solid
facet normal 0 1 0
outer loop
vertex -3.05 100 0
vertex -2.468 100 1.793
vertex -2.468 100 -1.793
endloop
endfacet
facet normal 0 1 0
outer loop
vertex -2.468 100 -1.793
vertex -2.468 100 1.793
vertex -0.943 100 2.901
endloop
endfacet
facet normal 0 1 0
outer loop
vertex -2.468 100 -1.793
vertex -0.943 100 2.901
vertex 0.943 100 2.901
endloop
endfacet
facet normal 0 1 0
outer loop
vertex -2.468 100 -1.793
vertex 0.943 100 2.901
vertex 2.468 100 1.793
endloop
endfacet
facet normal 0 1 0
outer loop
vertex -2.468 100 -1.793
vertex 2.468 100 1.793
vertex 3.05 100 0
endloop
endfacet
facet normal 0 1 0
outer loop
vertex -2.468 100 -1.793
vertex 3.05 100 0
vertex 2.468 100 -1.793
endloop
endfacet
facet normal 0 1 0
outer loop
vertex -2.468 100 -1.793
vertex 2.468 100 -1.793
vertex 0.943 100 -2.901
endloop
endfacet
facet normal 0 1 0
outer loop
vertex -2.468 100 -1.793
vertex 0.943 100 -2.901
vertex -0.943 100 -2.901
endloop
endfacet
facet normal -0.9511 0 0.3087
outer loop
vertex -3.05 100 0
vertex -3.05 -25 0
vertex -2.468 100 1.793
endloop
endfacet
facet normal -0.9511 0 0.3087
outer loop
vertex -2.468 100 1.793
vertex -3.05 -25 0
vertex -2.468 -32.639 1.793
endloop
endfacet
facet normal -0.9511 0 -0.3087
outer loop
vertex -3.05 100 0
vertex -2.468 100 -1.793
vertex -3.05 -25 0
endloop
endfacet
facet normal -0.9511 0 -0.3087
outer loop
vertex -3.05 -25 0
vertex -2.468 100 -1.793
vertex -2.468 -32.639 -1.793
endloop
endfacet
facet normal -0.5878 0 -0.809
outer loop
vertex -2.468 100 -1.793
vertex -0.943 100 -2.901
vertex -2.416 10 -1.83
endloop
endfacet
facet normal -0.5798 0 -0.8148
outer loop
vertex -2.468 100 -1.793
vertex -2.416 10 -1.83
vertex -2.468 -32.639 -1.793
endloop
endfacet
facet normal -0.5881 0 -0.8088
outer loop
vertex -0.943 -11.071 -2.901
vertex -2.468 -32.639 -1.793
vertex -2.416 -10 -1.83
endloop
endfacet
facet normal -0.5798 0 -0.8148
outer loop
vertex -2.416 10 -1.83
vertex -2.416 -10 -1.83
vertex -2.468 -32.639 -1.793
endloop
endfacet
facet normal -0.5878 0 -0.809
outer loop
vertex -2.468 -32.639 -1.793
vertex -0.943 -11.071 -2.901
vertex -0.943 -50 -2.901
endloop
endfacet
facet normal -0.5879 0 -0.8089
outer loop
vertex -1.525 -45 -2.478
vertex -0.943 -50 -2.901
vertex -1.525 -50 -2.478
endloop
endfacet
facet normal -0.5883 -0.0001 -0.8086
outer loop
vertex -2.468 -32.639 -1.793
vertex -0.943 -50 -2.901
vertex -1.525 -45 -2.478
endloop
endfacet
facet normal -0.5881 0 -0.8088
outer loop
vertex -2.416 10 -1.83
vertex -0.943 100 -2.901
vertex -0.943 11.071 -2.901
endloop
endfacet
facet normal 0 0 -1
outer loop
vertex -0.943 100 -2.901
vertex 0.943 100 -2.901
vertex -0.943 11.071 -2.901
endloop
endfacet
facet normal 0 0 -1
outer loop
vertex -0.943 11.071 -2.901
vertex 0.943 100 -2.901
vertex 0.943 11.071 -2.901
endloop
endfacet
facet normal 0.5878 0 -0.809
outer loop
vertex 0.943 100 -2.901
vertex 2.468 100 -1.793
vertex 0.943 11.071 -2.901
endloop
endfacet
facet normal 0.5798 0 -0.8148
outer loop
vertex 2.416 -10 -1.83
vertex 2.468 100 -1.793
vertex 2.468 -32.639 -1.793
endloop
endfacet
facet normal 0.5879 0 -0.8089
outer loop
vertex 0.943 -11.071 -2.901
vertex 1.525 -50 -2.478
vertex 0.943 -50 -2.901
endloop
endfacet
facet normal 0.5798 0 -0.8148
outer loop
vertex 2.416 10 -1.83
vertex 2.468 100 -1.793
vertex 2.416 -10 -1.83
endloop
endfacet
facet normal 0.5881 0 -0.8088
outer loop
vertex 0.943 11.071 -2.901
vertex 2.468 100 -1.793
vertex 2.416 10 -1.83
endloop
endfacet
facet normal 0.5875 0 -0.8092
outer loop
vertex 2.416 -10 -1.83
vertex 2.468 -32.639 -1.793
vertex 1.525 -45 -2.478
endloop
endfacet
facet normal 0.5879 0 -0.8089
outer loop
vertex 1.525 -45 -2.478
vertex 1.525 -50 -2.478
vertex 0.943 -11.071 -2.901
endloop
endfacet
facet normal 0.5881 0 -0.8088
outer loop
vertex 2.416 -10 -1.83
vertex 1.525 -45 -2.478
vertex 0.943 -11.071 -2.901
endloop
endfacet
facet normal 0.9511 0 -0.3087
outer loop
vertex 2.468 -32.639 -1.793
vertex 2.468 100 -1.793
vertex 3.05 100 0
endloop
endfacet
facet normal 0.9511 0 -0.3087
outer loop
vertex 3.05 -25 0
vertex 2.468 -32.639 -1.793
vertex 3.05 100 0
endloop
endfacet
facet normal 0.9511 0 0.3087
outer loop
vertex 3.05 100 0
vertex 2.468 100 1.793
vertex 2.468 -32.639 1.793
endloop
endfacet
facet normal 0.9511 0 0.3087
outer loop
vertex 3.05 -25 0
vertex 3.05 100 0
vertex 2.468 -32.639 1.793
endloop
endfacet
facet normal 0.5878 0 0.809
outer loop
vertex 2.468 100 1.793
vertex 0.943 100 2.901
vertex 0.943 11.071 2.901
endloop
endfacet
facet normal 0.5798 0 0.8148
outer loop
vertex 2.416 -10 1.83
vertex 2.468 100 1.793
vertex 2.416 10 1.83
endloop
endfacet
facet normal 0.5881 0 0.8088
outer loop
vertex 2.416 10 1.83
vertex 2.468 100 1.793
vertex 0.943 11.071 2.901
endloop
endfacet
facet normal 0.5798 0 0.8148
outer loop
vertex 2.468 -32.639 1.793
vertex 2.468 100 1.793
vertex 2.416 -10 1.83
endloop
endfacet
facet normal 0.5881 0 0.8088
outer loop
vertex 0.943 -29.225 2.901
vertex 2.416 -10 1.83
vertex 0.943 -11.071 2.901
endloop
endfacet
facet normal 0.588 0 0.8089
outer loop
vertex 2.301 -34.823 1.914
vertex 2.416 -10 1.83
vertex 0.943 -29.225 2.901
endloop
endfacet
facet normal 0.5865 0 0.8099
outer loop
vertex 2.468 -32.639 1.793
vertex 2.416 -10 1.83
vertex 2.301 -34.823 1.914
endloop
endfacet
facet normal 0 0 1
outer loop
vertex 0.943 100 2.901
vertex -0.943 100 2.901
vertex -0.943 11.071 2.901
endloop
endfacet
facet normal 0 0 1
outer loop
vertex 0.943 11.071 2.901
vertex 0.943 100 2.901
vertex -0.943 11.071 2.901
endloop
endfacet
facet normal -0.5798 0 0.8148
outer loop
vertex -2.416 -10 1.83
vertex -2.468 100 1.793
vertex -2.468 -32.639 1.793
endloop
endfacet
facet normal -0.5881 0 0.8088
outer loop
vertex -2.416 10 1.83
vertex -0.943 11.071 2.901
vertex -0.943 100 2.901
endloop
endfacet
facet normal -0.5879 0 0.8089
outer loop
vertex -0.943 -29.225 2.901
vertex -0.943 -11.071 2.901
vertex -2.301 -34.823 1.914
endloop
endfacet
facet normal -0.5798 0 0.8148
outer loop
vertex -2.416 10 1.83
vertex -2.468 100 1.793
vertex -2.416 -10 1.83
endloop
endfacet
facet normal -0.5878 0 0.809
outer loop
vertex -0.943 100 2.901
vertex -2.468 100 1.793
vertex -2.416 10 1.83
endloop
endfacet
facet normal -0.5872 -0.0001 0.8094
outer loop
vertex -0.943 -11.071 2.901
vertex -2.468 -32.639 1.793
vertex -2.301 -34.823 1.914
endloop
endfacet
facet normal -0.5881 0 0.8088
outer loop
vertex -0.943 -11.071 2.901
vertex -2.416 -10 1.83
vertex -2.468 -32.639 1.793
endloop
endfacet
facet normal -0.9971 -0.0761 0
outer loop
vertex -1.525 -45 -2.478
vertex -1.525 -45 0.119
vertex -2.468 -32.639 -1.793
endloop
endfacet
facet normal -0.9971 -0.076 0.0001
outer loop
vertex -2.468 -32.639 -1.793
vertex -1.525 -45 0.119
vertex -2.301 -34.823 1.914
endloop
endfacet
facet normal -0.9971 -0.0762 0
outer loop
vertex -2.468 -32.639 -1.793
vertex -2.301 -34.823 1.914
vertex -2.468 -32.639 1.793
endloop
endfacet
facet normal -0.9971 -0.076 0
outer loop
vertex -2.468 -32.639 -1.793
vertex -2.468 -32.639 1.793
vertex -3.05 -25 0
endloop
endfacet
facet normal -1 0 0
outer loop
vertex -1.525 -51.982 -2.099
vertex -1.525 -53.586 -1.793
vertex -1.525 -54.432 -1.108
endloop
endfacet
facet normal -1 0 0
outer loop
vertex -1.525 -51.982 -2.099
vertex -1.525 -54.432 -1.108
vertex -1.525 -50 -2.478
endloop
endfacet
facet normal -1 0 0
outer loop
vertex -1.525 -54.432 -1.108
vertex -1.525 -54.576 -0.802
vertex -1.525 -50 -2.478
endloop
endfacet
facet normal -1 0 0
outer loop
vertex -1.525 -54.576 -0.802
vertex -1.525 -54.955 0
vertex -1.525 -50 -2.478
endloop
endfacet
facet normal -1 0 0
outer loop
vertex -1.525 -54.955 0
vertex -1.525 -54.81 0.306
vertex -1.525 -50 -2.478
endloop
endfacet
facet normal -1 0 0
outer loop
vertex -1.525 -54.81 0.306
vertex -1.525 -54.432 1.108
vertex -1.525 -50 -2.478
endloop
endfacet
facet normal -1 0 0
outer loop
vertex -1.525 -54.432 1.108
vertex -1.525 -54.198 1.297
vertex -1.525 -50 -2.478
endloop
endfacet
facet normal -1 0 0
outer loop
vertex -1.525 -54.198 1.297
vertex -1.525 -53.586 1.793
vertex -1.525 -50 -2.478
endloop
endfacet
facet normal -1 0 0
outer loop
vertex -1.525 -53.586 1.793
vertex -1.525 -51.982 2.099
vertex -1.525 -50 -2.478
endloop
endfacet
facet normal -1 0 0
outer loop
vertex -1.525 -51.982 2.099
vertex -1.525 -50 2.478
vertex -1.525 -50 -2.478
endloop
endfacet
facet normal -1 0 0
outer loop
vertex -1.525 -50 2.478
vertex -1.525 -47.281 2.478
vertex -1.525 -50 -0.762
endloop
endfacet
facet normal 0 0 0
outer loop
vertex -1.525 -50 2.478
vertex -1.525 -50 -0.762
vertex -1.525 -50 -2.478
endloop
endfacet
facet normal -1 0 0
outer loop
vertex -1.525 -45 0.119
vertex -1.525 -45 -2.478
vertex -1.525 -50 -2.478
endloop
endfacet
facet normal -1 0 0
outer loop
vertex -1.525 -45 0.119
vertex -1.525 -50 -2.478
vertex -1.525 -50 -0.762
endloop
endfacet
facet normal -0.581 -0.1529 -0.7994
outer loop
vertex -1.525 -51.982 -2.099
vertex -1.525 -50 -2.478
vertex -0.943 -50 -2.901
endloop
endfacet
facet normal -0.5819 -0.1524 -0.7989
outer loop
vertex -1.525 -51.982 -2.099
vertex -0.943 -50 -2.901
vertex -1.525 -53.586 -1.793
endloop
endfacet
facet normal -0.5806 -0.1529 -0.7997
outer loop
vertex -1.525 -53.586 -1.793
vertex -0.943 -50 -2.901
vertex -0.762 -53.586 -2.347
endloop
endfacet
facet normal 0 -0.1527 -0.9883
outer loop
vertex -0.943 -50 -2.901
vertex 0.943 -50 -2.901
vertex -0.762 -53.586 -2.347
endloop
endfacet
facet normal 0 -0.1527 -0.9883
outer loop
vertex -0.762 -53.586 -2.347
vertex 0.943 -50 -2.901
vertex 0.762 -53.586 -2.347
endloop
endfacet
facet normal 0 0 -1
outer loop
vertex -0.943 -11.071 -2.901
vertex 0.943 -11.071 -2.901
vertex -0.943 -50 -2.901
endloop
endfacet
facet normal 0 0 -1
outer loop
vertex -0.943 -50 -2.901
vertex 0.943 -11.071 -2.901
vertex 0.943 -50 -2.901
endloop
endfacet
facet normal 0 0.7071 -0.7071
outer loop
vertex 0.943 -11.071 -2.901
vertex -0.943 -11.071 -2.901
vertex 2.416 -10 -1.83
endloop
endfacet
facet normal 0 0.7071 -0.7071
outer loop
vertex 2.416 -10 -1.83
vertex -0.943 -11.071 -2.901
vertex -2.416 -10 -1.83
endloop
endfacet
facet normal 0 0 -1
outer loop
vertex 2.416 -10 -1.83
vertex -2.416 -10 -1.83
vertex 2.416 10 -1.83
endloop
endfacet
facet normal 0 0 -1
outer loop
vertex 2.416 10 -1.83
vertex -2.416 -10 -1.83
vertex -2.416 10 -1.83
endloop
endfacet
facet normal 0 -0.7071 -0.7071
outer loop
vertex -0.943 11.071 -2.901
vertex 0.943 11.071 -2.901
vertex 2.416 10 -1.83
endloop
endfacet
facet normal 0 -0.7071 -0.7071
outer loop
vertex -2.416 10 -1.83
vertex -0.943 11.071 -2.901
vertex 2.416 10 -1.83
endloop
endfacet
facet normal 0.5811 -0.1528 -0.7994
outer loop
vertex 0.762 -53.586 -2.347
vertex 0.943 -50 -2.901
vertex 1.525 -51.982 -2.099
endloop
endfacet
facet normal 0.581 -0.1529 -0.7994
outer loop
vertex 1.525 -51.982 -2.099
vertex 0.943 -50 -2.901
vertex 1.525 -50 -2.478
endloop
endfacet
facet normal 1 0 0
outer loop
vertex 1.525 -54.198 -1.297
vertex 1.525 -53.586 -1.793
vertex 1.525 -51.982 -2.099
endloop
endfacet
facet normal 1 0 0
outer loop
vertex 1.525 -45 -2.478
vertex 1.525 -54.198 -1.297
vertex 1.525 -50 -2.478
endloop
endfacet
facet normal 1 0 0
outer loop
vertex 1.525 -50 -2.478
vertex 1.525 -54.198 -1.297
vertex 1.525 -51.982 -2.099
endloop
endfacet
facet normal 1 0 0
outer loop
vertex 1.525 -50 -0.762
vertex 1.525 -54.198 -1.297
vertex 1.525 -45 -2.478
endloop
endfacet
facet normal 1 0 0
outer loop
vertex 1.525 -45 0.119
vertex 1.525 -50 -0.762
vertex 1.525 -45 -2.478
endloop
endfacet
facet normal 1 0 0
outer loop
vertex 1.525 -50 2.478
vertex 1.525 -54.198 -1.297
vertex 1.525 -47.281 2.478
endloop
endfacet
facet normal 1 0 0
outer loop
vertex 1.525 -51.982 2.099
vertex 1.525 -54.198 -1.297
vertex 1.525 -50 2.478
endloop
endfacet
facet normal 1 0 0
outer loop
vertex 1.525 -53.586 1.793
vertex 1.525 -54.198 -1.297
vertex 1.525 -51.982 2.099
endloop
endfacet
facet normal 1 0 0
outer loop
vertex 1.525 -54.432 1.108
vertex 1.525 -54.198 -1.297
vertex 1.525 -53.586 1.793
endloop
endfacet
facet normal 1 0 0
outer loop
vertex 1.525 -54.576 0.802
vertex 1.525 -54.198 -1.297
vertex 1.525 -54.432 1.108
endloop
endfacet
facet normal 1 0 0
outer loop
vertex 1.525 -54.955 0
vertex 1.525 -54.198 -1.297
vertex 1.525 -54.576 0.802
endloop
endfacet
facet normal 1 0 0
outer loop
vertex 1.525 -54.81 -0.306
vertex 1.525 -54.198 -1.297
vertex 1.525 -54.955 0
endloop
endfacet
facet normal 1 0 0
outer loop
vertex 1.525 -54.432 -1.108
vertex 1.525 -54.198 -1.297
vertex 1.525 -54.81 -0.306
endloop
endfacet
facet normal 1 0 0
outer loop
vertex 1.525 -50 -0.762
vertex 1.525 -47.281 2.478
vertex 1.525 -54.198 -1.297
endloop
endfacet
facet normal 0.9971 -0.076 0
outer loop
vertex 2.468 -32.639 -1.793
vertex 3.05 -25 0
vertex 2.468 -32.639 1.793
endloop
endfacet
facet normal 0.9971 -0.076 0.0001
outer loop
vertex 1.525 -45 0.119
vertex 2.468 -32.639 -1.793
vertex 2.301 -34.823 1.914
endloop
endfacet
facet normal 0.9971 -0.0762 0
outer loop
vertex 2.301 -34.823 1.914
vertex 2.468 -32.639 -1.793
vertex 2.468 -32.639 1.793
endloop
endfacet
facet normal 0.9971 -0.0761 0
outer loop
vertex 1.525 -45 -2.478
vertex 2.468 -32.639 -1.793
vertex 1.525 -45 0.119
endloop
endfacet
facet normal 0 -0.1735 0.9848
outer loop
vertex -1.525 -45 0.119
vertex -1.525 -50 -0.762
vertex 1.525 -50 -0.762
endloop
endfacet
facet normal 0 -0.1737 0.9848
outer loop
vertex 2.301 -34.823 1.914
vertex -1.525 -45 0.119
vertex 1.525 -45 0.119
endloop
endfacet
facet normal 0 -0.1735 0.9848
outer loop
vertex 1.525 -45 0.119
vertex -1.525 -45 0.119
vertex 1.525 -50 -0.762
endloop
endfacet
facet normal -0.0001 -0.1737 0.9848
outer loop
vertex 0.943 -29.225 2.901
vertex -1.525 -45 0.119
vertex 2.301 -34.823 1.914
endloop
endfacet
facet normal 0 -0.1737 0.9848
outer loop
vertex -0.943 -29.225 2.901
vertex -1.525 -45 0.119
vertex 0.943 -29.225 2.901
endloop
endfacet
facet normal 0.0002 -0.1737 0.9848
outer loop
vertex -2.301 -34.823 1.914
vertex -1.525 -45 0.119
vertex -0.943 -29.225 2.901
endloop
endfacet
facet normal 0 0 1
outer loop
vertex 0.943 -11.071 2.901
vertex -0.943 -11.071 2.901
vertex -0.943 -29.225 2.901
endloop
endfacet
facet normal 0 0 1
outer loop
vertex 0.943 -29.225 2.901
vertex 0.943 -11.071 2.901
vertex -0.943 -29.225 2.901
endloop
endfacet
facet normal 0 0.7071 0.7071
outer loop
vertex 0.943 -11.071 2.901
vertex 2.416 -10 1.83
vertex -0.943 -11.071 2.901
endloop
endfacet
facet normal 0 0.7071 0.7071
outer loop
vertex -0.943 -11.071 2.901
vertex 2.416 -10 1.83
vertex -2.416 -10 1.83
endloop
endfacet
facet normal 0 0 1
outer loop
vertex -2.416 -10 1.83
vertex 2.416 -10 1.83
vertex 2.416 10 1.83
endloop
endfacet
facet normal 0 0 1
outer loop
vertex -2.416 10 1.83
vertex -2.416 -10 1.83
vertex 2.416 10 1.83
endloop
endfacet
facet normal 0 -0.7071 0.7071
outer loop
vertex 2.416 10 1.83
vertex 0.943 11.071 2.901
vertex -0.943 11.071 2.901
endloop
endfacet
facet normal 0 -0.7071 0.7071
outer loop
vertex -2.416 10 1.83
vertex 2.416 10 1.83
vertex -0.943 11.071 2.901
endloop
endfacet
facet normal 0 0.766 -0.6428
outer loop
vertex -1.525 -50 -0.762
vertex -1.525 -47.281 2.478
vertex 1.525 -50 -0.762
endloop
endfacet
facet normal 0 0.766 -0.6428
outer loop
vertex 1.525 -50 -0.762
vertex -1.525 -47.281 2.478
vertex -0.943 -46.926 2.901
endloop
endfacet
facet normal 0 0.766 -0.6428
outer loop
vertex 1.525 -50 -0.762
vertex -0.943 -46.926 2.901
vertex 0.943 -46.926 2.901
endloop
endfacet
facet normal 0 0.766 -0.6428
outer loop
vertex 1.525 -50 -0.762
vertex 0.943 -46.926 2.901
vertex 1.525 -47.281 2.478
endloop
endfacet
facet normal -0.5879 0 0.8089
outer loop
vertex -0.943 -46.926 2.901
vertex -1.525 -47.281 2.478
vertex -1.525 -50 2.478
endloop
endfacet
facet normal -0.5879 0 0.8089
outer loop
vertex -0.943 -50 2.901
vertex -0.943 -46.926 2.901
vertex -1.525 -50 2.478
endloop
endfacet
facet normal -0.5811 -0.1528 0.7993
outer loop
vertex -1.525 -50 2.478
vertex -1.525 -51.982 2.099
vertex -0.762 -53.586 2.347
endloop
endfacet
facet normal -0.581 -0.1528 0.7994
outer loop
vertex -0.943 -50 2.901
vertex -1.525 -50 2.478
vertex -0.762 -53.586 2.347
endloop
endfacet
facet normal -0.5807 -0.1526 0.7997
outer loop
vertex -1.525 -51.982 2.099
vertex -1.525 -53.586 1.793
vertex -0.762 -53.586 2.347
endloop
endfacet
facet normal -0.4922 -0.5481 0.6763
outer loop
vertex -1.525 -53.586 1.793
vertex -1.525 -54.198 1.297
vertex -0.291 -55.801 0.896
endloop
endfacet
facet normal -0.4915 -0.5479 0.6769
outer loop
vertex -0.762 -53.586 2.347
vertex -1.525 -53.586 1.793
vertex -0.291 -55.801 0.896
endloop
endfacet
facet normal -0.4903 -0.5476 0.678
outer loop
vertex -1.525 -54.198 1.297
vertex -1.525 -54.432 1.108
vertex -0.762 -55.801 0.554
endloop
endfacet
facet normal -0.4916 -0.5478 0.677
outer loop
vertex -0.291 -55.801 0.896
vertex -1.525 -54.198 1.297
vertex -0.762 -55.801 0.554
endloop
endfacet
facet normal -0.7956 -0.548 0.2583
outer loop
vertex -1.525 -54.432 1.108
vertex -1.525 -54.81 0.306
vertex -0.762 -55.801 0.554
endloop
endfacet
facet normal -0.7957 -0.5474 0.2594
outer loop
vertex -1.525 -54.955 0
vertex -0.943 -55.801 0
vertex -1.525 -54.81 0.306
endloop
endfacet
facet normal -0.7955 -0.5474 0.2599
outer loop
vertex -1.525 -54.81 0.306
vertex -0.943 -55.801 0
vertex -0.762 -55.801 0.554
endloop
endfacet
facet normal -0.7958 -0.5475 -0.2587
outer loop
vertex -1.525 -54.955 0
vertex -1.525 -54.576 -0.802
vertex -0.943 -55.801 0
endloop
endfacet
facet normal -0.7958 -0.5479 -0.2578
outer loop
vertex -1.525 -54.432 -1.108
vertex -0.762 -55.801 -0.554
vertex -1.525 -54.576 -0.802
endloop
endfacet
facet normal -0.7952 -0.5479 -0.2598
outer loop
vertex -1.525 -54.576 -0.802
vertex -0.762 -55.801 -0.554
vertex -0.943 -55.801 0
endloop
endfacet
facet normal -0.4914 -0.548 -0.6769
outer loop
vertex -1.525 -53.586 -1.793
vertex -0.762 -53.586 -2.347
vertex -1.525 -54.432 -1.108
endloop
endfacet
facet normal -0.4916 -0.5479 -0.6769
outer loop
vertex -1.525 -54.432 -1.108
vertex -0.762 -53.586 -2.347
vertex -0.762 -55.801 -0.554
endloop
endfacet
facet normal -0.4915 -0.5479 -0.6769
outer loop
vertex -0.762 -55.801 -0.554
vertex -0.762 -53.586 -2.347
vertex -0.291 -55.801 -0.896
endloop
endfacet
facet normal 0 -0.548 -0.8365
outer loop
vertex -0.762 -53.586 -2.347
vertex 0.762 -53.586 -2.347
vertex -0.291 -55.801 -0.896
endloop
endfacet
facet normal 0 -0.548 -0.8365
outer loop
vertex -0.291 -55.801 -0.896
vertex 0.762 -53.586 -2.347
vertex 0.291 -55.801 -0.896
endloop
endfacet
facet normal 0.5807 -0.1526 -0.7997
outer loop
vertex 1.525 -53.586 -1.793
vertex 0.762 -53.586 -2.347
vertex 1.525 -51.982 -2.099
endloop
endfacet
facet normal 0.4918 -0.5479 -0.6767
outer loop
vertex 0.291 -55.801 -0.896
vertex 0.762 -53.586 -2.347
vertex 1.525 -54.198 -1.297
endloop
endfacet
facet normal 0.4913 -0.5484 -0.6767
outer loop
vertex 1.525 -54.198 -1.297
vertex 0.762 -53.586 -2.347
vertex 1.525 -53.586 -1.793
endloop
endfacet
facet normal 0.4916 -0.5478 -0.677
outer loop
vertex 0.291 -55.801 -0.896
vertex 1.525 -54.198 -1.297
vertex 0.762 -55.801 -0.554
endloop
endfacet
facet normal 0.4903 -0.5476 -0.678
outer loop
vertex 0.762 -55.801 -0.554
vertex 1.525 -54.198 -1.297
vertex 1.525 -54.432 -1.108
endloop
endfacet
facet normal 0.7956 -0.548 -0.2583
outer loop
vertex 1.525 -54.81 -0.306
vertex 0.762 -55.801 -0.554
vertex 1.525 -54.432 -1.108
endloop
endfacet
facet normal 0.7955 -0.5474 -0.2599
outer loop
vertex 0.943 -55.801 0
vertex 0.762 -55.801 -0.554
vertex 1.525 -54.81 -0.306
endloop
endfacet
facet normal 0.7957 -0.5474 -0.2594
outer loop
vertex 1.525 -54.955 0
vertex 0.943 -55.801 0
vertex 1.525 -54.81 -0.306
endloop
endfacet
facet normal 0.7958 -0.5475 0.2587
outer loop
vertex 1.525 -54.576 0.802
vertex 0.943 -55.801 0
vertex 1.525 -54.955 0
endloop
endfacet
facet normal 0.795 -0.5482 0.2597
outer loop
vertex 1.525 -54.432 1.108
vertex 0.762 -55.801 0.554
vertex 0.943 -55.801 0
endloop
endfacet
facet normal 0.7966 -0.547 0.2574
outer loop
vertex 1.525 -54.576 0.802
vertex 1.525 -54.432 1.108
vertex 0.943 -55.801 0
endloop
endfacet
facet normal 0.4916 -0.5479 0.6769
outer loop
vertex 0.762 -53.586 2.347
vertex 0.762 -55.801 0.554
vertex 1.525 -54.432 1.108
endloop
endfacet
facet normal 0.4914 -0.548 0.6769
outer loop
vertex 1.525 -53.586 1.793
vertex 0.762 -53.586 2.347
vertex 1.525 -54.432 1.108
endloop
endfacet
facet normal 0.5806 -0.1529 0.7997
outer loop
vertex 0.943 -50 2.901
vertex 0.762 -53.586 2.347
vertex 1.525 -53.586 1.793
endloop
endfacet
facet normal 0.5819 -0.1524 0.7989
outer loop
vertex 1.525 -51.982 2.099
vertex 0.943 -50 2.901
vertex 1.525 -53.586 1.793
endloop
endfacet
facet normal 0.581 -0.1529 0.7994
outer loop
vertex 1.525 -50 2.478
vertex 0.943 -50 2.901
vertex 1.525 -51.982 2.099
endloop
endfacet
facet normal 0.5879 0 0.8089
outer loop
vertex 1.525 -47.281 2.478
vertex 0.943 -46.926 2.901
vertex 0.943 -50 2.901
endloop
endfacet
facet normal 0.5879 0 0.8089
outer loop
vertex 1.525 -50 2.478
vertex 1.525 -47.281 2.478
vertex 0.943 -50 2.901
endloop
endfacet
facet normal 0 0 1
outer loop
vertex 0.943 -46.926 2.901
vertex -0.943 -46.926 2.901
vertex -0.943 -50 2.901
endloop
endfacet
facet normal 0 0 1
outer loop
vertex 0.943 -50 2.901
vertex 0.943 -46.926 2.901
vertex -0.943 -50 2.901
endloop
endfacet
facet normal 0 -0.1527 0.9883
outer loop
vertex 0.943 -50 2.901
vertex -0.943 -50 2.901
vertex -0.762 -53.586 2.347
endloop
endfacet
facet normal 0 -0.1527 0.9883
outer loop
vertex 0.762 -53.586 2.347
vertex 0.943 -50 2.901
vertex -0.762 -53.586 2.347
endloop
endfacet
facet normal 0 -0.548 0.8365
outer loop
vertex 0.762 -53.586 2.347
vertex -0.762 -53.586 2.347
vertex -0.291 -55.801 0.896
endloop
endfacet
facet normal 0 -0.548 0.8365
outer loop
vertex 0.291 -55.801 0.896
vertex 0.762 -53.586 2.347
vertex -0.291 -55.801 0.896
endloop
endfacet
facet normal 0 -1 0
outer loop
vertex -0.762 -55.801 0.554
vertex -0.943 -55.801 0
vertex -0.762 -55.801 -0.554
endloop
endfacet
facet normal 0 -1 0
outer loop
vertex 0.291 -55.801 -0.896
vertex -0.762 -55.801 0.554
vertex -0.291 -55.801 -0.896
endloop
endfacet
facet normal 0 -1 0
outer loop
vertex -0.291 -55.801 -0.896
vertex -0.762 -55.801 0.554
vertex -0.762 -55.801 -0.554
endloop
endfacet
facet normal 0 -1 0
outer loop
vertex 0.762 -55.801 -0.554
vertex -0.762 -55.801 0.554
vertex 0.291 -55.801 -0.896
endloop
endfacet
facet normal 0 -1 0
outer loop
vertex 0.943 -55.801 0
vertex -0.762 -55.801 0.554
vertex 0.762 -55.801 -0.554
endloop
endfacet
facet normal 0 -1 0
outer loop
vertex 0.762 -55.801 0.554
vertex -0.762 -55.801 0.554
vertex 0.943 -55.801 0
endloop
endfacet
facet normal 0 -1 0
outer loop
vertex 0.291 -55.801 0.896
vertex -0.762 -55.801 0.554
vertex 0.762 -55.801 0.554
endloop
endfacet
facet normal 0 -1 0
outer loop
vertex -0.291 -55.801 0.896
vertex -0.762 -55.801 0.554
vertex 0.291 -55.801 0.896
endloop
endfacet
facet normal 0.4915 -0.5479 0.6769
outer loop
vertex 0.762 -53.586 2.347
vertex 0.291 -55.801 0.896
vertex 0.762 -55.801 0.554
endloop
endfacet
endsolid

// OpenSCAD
hooksize = 6.1;
d = hooksize;
r = hooksize/2;
length_above_grip = 50;  // measured from the centre-point of the grip
length_below_grip = 100; // measured from the centre-point of the grip
length = length_above_grip + length_below_grip;
hook_lower_angle = 80;
hook_upper_angle = 40;
grip_length = 20;
grip_depth=d/5;
grip_slope=grip_depth;  // 45-degree slope, as it will be printed overhanging
narrowing_length = 10;
narrowing_slope = 20;
narrowing_depth = d/4;

// Right-angled triangle with interior angle <angle>.
module triangle(radius, angle)
{
  o=radius*sin(angle);
  a=radius*cos(angle);
  polygon(points=[[0,0], [a,0], [a,o]]);
}

// module triangle_prism() copied from:
// https://github.com/elmom/MCAD/blob/master/regular_shapes.scad
module triangle_prism(height, radius, angle)
{
  linear_extrude(height=height, center = true) triangle(radius, angle);
}

module trapezium_prism(trap_height, flat_width, slope_width, height)
{
  max_x = slope_width + flat_width/2;
  linear_extrude(height=height, center=true)
    polygon(points=[[-max_x, 0],
                    [-flat_width/2, trap_height],
                    [flat_width/2, trap_height],
                    [max_x, 0]]);
}

module grip()
{
	trapezium_prism(grip_depth, grip_length, grip_slope, d);
}

module narrowing()
{
	trapezium_prism(narrowing_depth, narrowing_length, narrowing_slope, d);
}

rotate(a=[90, 0, 0])
        difference()
        {
                union()
                {
                        translate (v=[0, 0, length_above_grip])
                                scale([1.0, 1.0, 2.0])
                                sphere(r = r, anglesteps = 10, sweepsteps = 10);
                        translate (v=[0, 0, -length_below_grip])
                                cylinder(r = r, h = length);
                }
                translate (v= [0 , -r/4, length_above_grip])
                        rotate(a=[270, 0, 90])
                        difference() {
                                triangle_prism(d, 4*d, hook_lower_angle);
                                triangle_prism(d, 4*d, hook_upper_angle);
                        }
		translate([0, r, 0])
			rotate(a=[0, 90, 180])
				grip();
		translate([0, -r, 0])
			rotate(a=[0, 90, 0])
				grip();
		// Narrow the head, for Greater Pointiness
		translate(v=[r, 0, length_above_grip])
			rotate(a=[-90, 90, 0])
				narrowing();
		translate(v=[-r, 0, length_above_grip])
			rotate(a=[-90, 90, 180])
				narrowing();
        }
